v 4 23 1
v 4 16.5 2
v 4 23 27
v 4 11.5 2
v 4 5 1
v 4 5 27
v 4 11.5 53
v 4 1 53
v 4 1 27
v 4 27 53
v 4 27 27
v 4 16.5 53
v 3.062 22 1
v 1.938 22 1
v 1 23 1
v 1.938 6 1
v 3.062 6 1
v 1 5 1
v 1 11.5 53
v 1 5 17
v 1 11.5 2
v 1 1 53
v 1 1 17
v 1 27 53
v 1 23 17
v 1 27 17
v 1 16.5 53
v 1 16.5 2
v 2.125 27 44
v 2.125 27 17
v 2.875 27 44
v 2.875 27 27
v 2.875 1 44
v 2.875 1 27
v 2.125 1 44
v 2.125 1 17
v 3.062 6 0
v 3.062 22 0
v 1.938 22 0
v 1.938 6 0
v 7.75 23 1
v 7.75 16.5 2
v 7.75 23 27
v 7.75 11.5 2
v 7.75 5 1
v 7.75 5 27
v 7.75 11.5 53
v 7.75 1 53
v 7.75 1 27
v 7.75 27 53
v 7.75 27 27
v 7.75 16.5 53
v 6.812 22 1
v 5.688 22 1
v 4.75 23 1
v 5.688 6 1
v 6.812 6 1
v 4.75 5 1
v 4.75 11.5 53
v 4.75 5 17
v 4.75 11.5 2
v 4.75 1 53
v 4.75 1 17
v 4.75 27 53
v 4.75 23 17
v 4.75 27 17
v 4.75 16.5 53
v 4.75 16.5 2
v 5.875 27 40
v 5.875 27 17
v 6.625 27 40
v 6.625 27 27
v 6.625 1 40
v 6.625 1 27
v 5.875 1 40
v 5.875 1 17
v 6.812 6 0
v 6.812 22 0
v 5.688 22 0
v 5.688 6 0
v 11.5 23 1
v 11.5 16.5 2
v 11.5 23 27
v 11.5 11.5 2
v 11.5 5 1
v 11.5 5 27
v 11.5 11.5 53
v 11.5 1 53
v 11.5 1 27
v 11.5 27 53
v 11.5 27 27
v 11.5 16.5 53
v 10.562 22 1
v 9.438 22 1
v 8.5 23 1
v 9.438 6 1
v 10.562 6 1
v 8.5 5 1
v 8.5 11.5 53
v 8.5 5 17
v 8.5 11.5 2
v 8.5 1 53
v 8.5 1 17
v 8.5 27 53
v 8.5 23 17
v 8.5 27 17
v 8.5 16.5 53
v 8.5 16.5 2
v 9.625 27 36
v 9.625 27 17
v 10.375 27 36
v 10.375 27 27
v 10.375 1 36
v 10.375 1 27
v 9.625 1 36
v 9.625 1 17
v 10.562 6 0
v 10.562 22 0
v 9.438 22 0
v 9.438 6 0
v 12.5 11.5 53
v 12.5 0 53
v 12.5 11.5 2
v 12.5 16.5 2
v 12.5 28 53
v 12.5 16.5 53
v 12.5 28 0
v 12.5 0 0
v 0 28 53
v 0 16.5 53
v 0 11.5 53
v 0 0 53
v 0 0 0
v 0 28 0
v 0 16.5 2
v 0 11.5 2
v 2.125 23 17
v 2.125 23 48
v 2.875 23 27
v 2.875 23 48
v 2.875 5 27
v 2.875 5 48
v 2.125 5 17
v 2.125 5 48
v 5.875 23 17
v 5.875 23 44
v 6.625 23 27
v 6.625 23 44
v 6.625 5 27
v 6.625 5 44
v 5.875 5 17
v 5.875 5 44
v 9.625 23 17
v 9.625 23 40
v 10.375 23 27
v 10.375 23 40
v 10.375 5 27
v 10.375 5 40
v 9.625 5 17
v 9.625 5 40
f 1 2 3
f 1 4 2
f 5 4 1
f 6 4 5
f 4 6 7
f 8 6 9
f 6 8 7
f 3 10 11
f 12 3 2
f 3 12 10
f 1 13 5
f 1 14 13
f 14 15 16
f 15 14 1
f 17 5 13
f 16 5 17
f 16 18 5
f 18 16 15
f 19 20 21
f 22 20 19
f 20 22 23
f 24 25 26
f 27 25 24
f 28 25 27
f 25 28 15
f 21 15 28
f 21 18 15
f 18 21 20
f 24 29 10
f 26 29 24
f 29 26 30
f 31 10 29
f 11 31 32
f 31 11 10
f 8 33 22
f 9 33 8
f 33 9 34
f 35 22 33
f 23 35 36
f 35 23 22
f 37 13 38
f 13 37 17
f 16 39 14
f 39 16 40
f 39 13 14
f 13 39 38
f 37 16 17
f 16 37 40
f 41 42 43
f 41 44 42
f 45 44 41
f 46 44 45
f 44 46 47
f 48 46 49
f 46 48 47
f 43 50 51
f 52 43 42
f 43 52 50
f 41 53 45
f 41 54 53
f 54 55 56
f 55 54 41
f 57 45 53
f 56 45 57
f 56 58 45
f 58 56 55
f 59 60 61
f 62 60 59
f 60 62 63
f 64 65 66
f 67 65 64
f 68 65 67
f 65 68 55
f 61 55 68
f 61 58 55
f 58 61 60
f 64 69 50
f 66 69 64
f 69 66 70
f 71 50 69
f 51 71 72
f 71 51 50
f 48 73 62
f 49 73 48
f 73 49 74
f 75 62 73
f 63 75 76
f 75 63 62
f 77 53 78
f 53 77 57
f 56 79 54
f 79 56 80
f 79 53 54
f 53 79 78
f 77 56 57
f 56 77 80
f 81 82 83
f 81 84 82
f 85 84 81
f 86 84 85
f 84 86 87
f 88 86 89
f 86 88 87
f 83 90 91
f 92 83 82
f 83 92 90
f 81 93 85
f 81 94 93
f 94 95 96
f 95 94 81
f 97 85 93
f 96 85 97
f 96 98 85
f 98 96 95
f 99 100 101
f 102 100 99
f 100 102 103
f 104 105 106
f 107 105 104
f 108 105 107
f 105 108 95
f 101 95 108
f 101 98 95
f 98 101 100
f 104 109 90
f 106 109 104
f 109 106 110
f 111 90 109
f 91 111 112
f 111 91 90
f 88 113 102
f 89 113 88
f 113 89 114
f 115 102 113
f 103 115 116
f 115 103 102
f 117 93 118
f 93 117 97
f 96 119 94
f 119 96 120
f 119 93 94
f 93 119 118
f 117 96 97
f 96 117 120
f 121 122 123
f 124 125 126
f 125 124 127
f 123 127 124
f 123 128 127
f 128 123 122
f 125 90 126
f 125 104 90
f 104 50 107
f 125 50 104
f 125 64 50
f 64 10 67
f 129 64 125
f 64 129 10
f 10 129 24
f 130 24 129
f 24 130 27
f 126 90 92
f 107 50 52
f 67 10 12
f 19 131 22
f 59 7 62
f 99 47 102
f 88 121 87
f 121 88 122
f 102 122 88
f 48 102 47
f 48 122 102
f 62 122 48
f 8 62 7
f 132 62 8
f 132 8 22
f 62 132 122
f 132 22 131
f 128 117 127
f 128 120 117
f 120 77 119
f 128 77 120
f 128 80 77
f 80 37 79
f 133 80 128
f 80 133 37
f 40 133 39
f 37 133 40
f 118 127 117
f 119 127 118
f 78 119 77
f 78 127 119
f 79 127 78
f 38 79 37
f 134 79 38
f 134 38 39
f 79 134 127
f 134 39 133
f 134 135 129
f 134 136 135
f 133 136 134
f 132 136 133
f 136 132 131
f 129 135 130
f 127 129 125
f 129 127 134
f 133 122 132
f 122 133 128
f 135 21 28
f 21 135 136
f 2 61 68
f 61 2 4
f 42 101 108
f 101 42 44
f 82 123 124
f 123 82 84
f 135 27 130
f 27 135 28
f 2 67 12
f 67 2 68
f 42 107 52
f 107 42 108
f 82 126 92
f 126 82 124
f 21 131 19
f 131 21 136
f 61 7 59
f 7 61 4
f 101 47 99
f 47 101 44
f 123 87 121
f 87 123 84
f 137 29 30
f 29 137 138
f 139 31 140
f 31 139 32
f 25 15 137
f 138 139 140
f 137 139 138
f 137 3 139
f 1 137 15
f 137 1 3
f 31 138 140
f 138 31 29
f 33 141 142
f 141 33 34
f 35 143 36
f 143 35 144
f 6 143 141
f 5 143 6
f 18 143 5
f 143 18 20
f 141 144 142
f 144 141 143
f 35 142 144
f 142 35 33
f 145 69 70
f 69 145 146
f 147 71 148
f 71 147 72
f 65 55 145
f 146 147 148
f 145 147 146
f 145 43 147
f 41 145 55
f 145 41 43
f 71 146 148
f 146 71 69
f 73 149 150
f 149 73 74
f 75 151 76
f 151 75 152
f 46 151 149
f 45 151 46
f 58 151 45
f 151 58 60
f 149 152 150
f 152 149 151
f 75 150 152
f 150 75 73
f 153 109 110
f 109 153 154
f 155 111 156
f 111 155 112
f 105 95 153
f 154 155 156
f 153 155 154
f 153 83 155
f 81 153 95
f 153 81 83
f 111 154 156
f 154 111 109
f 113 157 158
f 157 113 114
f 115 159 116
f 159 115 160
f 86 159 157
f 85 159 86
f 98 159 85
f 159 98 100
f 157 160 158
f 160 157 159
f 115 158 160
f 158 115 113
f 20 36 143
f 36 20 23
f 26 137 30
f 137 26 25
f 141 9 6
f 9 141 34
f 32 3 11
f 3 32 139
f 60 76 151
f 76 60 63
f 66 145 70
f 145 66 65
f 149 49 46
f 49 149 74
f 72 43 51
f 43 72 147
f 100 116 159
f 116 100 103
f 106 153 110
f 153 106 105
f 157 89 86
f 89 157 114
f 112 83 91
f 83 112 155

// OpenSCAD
heddle_count = 3;
heddle_thickness = 1.0;
wall_thickness = 1;
separator_thickness = 0.75;
heddle_block_width = 2*wall_thickness + 3*heddle_count*heddle_thickness + (heddle_count-1)*separator_thickness;
heddle_tension_depth = 15;
heddle_tension_hole_depth = heddle_tension_depth + 1;
heddle_tension_hole_thickness = (3*heddle_thickness - separator_thickness)/2;
heddle_control_inset = 5;
heddle_control_depth = heddle_tension_depth + 2*heddle_control_inset;
heddle_control_height = 15;
heddle_block_inner_depth = heddle_control_depth+1; //heddle_tension_depth + 2*(heddle_control_inset + 3);
heddle_block_outer_depth = heddle_block_inner_depth + 2*wall_thickness;
heddle_lower_rise = heddle_control_height + 1;
heddle_upper_rise = heddle_lower_rise + 10;
heddle_support_depth = (heddle_block_inner_depth - heddle_tension_hole_depth - 2)/2;
separator_depth = (heddle_block_inner_depth - heddle_tension_hole_depth - 2)/2;
separator_min_height = heddle_upper_rise + 10;
separator_spacing = 4;
separator_max_height = separator_min_height + separator_spacing*heddle_count;
heddle_block_height = separator_max_height + 5;

positioner_tine_length = 15;
positioner_tine_thickness = 3*heddle_thickness-1;
positioner_depth = 5;
positioner_width = heddle_block_width + 20;
positioner_height = 14;



module separator(i) {
    difference() {
        cube([separator_thickness, separator_depth, separator_max_height]);

        translate([0, 0, separator_max_height-separator_depth-i*separator_spacing])
        rotate([45,0,0])
        translate([-10, 0, 0])
        cube([20, 20, 20]);
    }
}

module heddle_block() {

    difference() {
        cube([heddle_block_width, heddle_block_outer_depth, heddle_block_height]);

        for (i = [0:heddle_count-1]) {
            translate([wall_thickness+i*separator_thickness+3*i*heddle_thickness, wall_thickness, wall_thickness])
            cube([3*heddle_thickness, heddle_block_inner_depth, 100]);

            translate([wall_thickness+i*separator_thickness+(1.5+3*i)*heddle_thickness - heddle_tension_hole_thickness/2, wall_thickness + heddle_block_inner_depth/2 - heddle_tension_hole_depth/2, -10])
            cube([heddle_tension_hole_thickness, heddle_tension_hole_depth, 100]);
        }

        translate([-10,heddle_block_outer_depth/2 - 2.5,2*wall_thickness])
        cube([100,5,100]);
    }

    for (i = [0:heddle_count-1]) {
        translate([wall_thickness+i*separator_thickness+3*i*heddle_thickness,wall_thickness,wall_thickness])
        #cube([1.5*heddle_thickness, heddle_support_depth, heddle_lower_rise]);

        translate([wall_thickness+i*separator_thickness+3*i*heddle_thickness,heddle_block_outer_depth-wall_thickness-heddle_support_depth,wall_thickness])
        cube([1.5*heddle_thickness, heddle_support_depth, heddle_lower_rise]);

        translate([wall_thickness+i*separator_thickness+(1.5+3*i)*heddle_thickness,wall_thickness,wall_thickness])
        cube([1.5*heddle_thickness, heddle_support_depth, heddle_upper_rise]);

        translate([wall_thickness+i*separator_thickness+(1.5+3*i)*heddle_thickness,heddle_block_outer_depth-wall_thickness-heddle_support_depth,wall_thickness])
        cube([1.5*heddle_thickness, heddle_support_depth, heddle_upper_rise]);

        translate([wall_thickness+i*separator_thickness+(1.5+3*i)*heddle_thickness-separator_thickness/2, heddle_block_outer_depth-wall_thickness-separator_depth, 0])
        translate([separator_thickness/2, separator_depth/2, 0])
        rotate([0,0,180])
        translate([-separator_thickness/2, -separator_depth/2, 0])
        separator(i);

        translate([wall_thickness+i*separator_thickness+(1.5+3*i)*heddle_thickness-separator_thickness/2, wall_thickness, 0])
        separator(i);
    }
}

difference() {
    heddle_block();

    // translate([0,0,0])
    // rotate([-45,0,0])
    // translate([-10,-100,-10])

    // translate([wall_thickness+3*heddle_thickness-1,-10,-10])
    // cube([100,100,100]);
}

module positioner() {
    difference() {
        cube([positioner_width, positioner_height, positioner_depth]);

        for (i = [0:heddle_count-1]) {
            translate([10+i*separator_thickness+(1.5+3*i)*heddle_thickness - heddle_tension_hole_thickness/2, wall_thickness + heddle_block_inner_depth/2 - heddle_tension_hole_depth/2, -10])
            #cube([heddle_tension_hole_thickness, 20, 20]);
        }
    }
}

// positioner();
